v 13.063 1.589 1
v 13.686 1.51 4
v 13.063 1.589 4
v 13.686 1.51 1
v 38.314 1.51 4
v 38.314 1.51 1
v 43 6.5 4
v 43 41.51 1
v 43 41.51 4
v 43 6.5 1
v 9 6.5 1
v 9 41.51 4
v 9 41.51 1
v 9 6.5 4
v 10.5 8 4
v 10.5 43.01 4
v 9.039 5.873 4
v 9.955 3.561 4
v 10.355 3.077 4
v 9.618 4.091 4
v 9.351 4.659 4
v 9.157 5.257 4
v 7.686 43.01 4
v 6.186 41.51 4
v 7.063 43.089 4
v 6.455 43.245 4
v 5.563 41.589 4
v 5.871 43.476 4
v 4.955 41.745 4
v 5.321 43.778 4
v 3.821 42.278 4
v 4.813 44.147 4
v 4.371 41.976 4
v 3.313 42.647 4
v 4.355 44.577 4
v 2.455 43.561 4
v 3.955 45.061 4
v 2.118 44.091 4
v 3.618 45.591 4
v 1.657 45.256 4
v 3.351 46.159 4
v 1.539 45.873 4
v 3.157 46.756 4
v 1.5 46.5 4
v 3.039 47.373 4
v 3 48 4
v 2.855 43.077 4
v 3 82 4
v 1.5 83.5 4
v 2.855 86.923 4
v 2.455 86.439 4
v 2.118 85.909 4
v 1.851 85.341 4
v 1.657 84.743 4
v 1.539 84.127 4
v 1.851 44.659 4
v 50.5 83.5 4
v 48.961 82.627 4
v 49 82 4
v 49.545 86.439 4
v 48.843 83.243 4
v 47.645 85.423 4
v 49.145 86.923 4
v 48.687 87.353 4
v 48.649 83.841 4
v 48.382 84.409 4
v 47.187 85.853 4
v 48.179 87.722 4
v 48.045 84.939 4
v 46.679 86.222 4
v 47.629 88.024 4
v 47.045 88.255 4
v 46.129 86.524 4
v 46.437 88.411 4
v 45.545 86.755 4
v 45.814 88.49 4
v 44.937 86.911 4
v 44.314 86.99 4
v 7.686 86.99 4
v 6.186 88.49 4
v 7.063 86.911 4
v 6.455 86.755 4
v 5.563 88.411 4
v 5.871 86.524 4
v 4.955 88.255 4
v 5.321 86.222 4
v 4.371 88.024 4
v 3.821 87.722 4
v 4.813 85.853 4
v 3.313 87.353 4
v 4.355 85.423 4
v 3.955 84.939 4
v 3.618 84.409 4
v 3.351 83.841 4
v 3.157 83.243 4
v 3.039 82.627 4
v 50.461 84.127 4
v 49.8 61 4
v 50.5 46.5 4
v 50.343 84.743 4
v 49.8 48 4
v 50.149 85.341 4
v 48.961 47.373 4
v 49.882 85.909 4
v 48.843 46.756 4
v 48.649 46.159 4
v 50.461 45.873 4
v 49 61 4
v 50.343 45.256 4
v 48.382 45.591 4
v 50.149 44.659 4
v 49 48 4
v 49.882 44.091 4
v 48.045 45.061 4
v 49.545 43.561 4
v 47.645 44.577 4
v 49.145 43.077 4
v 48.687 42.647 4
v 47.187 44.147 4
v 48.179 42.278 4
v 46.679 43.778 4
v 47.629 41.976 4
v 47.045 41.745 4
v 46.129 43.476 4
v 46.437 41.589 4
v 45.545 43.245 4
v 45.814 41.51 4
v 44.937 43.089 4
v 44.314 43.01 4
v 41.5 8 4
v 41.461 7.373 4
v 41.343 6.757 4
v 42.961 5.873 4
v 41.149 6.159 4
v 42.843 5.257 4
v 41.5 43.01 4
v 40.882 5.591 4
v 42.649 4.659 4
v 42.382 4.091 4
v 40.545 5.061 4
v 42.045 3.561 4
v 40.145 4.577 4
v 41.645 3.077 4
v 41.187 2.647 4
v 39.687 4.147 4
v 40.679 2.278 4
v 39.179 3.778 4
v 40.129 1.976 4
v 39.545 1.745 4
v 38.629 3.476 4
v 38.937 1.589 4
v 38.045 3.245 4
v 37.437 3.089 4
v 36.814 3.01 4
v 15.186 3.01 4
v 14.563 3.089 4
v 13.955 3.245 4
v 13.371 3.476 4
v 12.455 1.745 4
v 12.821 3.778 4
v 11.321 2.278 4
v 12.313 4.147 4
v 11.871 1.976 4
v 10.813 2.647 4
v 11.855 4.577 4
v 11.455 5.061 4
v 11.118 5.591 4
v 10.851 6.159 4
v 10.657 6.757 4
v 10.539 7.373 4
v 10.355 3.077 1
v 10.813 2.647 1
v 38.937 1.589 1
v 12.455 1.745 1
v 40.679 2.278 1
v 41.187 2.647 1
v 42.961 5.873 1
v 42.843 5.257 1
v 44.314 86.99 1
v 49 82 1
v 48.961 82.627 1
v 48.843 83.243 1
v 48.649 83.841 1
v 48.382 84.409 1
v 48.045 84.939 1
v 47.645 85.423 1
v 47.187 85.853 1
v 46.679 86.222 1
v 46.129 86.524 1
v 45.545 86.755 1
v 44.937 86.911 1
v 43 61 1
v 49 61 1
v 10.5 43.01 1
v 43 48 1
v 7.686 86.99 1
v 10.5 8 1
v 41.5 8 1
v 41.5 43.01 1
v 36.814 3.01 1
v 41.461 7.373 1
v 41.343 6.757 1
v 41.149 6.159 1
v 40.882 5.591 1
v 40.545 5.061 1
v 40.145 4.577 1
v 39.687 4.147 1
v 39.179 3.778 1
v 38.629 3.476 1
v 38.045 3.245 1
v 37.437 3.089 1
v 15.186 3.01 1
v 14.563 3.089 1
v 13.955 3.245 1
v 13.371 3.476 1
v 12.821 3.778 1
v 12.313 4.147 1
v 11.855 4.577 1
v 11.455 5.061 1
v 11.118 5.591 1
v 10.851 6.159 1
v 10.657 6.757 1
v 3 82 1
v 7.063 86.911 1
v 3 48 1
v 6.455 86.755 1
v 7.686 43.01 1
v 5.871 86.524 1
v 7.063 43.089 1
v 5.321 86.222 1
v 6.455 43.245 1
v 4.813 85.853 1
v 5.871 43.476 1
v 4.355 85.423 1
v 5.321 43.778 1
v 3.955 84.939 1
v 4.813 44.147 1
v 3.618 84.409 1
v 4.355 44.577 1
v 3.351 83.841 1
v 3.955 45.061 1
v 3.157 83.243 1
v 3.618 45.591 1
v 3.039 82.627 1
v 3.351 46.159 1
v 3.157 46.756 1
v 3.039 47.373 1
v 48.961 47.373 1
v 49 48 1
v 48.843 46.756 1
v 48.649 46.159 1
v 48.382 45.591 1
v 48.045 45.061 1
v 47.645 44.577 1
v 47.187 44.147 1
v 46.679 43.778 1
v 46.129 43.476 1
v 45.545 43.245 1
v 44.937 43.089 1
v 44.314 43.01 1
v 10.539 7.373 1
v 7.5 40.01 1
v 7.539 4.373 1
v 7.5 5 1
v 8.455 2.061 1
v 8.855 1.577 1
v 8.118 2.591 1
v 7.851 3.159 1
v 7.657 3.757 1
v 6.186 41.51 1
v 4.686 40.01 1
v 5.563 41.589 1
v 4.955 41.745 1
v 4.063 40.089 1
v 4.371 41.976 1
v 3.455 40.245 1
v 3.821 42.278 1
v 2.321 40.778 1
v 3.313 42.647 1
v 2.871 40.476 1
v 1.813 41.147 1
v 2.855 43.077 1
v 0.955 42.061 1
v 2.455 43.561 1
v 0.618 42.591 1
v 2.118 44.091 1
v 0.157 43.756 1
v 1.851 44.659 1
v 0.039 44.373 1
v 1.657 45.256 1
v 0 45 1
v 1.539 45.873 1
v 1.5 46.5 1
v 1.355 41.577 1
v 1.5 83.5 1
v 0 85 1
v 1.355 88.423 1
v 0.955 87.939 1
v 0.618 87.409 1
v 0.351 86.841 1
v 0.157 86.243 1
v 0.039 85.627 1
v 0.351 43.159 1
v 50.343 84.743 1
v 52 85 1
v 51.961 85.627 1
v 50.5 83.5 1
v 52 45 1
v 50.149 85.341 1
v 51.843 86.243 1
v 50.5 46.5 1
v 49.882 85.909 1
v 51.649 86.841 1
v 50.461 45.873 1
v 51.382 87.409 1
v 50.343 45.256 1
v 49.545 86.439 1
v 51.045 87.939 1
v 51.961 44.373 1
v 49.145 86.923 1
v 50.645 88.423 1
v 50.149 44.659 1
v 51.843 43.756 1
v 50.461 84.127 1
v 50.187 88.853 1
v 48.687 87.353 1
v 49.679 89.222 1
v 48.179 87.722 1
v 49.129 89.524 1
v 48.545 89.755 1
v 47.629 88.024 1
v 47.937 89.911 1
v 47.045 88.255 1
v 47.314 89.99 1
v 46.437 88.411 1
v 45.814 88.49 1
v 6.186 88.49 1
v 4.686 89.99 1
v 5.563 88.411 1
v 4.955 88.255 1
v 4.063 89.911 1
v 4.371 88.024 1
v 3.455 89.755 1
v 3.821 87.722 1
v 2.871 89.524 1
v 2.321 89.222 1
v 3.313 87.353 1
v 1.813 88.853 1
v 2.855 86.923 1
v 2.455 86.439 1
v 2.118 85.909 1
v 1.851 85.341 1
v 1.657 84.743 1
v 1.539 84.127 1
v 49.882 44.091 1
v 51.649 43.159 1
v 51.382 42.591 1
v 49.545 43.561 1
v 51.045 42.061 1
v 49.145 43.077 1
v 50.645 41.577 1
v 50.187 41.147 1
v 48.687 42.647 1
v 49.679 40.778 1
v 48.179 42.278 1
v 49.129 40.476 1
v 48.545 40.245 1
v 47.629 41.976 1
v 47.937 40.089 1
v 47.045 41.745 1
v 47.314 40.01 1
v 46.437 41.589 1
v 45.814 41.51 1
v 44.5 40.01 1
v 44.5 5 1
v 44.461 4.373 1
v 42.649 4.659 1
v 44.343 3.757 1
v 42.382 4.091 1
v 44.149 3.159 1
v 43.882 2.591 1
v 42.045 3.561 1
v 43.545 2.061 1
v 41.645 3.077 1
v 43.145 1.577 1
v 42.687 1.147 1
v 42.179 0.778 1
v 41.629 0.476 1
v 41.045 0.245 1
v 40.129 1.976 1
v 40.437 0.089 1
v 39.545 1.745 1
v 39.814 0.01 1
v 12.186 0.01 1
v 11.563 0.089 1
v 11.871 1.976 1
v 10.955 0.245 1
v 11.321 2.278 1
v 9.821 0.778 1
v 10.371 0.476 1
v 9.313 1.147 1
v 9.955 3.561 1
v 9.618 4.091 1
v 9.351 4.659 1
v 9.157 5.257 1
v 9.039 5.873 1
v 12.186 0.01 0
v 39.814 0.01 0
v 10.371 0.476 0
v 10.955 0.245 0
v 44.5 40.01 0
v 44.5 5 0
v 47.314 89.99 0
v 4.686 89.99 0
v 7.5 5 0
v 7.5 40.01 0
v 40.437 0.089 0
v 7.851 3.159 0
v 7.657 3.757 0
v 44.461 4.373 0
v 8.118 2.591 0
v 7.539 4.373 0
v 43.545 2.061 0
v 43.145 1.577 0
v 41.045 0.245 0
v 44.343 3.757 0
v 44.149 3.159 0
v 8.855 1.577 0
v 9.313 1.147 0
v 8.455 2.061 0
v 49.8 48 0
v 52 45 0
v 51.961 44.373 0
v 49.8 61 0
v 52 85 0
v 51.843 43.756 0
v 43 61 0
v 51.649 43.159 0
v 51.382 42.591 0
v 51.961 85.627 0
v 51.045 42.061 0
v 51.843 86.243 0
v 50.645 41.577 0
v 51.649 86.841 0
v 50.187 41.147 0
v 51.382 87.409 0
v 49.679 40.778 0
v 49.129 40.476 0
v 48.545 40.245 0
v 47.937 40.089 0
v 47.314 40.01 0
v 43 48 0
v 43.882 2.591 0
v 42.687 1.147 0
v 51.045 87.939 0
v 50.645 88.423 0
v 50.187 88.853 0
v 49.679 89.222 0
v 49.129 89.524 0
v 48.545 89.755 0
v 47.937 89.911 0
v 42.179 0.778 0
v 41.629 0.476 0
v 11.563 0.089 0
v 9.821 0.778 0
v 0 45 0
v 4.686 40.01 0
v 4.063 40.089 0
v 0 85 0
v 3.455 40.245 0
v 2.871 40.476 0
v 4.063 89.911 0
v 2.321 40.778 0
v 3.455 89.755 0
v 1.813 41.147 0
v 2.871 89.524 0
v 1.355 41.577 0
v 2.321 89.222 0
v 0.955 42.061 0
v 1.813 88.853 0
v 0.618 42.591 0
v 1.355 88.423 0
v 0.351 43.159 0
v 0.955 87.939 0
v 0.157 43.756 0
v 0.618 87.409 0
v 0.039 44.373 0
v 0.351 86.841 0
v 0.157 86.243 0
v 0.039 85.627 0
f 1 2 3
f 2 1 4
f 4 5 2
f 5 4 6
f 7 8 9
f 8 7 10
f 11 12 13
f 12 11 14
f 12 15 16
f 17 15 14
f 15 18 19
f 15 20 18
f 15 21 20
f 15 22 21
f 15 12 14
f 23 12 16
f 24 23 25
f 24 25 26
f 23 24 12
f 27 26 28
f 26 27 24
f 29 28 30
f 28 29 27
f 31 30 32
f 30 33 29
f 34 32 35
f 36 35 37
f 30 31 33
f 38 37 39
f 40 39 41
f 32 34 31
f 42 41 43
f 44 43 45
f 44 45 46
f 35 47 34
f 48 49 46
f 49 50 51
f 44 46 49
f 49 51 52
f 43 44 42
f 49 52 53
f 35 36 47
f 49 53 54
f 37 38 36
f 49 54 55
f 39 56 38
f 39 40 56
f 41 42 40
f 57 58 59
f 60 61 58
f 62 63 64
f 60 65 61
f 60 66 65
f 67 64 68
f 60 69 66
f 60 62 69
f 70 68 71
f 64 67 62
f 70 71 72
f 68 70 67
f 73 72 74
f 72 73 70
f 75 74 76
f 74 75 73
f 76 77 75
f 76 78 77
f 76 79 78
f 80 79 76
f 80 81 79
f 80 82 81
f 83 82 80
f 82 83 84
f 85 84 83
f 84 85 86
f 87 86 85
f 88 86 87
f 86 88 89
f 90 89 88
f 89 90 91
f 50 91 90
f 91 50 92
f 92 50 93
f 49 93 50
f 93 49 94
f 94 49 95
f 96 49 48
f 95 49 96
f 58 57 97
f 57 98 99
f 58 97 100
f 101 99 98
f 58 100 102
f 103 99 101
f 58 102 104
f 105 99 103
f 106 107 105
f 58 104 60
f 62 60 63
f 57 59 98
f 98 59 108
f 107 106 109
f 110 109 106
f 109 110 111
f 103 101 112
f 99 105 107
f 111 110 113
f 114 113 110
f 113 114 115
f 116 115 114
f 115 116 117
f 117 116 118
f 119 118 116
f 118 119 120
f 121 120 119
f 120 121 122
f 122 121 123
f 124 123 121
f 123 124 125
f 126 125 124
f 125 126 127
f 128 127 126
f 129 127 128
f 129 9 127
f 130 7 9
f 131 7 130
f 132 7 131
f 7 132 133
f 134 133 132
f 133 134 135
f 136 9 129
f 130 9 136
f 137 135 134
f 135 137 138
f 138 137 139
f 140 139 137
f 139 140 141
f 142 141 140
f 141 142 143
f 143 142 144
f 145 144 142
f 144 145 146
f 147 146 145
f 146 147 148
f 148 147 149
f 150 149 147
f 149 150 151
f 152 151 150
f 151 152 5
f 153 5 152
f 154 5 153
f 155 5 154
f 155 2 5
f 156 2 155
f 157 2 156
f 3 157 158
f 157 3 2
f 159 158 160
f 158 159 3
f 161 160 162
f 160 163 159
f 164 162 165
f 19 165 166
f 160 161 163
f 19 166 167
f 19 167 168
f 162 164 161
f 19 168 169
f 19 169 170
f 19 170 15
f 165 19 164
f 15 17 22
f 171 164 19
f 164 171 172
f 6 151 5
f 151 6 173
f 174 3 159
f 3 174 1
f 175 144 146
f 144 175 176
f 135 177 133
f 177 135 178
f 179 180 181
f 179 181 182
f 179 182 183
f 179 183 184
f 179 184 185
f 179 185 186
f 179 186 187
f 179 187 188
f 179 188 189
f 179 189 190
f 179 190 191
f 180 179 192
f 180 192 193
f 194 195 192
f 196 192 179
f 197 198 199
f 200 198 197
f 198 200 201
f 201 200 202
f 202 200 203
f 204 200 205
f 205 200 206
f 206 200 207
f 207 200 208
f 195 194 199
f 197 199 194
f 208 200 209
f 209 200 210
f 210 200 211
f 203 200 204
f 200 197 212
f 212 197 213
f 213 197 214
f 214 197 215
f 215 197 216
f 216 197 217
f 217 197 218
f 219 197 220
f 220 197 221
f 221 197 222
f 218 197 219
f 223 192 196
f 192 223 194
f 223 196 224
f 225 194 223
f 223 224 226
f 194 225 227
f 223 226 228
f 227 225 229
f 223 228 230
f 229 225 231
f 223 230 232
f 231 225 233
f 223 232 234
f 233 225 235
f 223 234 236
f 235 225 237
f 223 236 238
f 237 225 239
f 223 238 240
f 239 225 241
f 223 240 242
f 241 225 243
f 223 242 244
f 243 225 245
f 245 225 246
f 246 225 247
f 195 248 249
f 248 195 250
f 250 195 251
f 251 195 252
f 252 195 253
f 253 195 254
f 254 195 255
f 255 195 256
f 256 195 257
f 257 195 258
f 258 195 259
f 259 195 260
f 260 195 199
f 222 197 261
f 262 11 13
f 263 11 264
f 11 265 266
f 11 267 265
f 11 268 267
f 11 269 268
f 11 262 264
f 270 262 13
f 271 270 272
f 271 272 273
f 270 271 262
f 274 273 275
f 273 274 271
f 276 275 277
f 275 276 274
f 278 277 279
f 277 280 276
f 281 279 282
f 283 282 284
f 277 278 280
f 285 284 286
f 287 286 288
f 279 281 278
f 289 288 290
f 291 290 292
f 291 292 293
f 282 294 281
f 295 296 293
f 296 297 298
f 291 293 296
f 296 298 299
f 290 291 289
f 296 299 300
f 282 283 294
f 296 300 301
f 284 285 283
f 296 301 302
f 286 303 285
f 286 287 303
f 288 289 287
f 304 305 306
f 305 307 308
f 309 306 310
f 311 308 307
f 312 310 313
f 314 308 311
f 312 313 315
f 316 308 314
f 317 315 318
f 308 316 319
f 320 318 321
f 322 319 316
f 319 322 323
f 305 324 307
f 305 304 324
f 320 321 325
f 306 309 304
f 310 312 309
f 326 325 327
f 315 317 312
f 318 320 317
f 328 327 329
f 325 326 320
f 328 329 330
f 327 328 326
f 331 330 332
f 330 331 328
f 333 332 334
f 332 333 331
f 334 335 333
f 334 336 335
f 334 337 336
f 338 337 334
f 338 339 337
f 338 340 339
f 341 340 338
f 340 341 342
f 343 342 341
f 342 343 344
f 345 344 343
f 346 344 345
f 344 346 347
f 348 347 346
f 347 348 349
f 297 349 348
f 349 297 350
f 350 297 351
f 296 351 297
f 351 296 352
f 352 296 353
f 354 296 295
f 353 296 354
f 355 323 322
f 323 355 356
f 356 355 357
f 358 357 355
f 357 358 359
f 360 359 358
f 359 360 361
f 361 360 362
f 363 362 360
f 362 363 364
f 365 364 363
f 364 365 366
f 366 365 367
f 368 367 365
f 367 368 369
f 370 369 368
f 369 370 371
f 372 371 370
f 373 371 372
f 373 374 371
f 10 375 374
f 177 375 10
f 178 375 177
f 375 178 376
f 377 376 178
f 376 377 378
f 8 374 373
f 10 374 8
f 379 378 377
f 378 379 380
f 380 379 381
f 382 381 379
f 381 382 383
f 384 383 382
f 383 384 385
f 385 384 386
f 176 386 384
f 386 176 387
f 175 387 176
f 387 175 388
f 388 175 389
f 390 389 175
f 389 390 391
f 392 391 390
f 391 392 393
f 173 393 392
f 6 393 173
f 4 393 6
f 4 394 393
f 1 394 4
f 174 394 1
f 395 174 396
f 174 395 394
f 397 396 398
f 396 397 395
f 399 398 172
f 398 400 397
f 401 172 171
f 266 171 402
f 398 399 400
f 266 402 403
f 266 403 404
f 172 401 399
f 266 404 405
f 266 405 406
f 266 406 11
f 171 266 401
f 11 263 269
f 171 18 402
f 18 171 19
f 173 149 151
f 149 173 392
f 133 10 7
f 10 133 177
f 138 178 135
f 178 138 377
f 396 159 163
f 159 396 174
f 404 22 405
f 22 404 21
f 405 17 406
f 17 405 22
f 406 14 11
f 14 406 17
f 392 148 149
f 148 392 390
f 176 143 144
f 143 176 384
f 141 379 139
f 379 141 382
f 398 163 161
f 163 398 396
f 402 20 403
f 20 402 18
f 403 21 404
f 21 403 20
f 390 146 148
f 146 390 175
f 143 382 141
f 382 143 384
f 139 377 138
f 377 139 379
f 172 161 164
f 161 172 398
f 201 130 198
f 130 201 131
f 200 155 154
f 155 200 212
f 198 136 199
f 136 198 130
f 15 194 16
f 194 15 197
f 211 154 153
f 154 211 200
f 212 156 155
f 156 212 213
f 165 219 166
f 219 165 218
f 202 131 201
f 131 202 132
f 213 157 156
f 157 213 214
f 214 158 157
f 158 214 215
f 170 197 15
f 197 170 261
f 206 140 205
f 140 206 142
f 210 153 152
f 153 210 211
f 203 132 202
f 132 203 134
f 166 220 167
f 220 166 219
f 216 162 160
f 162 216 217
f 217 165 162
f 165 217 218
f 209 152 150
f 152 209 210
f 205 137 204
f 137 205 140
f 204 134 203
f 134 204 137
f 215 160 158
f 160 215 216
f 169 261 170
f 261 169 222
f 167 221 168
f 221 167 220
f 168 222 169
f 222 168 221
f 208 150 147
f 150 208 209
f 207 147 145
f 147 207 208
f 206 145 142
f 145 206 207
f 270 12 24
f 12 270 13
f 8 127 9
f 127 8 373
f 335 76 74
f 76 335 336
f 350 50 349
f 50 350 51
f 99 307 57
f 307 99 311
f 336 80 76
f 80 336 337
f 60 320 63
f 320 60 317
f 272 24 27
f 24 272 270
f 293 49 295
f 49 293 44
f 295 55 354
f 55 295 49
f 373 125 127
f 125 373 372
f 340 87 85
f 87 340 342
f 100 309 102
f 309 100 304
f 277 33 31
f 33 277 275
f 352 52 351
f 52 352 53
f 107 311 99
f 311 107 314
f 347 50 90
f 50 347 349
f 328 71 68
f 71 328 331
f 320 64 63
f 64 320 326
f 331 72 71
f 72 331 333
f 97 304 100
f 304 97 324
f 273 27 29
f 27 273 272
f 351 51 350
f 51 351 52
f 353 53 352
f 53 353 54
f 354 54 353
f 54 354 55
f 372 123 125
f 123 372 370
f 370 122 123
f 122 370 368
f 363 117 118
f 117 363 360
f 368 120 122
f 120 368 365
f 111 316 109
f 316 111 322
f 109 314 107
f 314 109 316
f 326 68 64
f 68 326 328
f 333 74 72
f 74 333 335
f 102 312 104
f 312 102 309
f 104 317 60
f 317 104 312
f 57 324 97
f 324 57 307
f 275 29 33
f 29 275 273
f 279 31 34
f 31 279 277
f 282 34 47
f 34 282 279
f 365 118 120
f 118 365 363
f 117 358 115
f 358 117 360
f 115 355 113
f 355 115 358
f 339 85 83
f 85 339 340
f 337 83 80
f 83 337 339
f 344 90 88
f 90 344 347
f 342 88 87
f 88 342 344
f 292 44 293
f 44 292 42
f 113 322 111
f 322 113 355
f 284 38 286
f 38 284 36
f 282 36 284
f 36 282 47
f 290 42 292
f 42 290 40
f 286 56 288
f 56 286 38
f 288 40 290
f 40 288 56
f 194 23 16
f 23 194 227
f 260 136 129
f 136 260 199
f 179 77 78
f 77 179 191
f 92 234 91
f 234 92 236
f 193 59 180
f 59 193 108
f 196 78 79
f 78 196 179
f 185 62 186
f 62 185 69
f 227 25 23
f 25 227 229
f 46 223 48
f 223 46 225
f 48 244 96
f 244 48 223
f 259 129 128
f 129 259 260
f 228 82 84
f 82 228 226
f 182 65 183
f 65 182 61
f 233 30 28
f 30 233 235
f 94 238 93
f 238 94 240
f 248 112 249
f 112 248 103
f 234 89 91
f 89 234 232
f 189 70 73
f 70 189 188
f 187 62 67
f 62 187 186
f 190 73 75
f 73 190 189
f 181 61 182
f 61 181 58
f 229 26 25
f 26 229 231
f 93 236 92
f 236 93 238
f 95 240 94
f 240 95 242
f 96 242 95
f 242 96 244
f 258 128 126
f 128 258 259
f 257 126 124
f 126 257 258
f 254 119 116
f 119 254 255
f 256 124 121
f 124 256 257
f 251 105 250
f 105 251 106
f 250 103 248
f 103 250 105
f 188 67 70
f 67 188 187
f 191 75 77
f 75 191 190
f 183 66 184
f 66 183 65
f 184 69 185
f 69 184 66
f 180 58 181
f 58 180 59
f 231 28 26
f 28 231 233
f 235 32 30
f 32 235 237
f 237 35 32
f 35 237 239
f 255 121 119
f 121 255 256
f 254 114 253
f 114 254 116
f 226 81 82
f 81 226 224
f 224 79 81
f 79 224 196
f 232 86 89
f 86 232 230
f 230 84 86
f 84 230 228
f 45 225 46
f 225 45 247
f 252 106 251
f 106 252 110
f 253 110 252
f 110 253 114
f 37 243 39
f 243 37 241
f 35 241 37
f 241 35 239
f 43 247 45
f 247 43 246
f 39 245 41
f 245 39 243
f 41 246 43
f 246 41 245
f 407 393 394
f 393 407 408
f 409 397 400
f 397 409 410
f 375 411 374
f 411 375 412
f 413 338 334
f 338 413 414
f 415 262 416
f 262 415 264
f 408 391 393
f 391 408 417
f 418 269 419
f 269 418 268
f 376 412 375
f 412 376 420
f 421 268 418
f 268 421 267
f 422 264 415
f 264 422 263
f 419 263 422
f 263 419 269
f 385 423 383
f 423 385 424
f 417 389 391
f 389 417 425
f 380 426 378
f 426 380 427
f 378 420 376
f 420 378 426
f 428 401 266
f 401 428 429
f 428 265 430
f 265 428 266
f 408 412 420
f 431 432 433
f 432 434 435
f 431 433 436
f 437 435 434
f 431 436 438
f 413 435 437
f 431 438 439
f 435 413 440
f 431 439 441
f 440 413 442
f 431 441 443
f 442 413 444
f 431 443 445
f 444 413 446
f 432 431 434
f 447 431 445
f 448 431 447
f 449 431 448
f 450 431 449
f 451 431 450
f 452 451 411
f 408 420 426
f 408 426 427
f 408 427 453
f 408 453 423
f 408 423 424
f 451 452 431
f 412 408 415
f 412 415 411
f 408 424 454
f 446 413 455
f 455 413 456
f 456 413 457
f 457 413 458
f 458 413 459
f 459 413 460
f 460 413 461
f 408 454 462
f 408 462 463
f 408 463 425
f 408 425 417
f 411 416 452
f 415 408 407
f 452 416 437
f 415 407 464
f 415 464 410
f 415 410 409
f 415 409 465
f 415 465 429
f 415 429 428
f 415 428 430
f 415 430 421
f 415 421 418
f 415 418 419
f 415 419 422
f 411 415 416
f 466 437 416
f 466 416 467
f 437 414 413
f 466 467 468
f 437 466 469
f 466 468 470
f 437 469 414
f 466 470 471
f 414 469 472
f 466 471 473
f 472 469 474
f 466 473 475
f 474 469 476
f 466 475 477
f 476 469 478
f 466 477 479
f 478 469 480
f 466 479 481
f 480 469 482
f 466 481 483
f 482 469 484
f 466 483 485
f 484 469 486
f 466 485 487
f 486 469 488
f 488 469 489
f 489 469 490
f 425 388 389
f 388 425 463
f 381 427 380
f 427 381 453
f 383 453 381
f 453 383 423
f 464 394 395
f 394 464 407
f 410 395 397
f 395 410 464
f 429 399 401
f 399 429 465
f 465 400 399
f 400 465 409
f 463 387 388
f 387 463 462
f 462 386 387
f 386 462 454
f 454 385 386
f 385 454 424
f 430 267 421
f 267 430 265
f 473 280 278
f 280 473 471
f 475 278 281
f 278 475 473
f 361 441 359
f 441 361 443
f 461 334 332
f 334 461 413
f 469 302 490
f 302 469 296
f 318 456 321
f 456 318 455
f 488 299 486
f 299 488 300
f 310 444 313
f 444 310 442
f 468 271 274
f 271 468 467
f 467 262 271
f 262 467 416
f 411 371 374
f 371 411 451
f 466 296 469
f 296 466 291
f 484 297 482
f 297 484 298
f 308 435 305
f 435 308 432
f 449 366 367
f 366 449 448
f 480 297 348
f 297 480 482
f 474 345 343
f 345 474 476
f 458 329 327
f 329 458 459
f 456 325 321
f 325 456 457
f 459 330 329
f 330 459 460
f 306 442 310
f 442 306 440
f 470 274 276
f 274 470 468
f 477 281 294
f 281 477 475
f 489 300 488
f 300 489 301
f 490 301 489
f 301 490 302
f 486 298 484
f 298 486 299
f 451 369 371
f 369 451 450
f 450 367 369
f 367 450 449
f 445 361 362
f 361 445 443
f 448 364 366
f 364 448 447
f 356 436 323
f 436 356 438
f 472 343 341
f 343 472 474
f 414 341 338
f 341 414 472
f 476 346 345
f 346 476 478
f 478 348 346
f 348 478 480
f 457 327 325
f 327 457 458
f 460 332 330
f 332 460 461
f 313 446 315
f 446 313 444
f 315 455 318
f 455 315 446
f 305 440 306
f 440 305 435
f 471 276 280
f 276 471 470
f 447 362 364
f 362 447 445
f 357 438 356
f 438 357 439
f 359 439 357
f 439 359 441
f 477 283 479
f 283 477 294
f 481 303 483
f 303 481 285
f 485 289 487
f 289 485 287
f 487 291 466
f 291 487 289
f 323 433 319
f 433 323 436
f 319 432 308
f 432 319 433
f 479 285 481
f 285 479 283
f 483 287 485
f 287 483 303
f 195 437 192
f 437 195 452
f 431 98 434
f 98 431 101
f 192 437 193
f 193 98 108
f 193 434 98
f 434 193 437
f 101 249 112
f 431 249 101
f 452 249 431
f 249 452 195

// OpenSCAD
wall = 1.5;
width=52;
height=90;
corner=5;
$fn=50;

frontBump=[37,40,3];


module roundRect(size,corner=5) {
    translate([corner,corner,0]) hull() {
        cube([size[0]-corner*2,size[1]-corner*2,size[2]]);
        cylinder(h=size[2],r=corner,$fn=$fn);
        translate([size[0]-corner*2,0,0]) cylinder(h=size[2],r=corner,$fn=$fn);
        translate([size[0]-corner*2,size[1]-corner*2,0]) cylinder(h=size[2],r=corner,$fn=$fn);
        translate([0,size[1]-corner*2,0]) cylinder(h=size[2],r=corner,$fn=$fn);
    }
}

module roundRectHollow(size,corner=5,wall=1) {
    difference() {
        roundRect(size);
        translate([wall,wall,-1]) roundRect([size[0]-wall*2,size[1]-wall*2,size[2]+2]);
    }
}

difference() {union(){
translate([(width-frontBump[0])/2,0,0]) roundRect([frontBump[0],height,1], wall=wall);
translate([0,frontBump[1],0])  roundRect([width,height-frontBump[1],1],wall=wall);



translate([0,0,1]) {

difference() {
        translate([(width-frontBump[0]+wall*2)/2,wall,0]) roundRectHollow([frontBump[0]-wall*2,height-wall*2,frontBump[2]], wall=wall);
        translate([0,frontBump[1]+wall,-1]) roundRect([width,height-frontBump[1],frontBump[2]+2]);
}

difference() {
        translate([wall,frontBump[1]+wall,0])  roundRectHollow([width-wall*2,height-frontBump[1]-wall*2,frontBump[2]],wall=wall);
        translate([(width-frontBump[0]+wall*4)/2,frontBump[1]+wall-1,-1])
            cube([frontBump[0]-wall*4,wall+2,frontBump[2]+2]);
        
}

}
}


translate([width-((width-frontBump[0]+wall*2)/2),frontBump[1]+wall+6.5,-1]) cube([6.8,13,40]);
}
